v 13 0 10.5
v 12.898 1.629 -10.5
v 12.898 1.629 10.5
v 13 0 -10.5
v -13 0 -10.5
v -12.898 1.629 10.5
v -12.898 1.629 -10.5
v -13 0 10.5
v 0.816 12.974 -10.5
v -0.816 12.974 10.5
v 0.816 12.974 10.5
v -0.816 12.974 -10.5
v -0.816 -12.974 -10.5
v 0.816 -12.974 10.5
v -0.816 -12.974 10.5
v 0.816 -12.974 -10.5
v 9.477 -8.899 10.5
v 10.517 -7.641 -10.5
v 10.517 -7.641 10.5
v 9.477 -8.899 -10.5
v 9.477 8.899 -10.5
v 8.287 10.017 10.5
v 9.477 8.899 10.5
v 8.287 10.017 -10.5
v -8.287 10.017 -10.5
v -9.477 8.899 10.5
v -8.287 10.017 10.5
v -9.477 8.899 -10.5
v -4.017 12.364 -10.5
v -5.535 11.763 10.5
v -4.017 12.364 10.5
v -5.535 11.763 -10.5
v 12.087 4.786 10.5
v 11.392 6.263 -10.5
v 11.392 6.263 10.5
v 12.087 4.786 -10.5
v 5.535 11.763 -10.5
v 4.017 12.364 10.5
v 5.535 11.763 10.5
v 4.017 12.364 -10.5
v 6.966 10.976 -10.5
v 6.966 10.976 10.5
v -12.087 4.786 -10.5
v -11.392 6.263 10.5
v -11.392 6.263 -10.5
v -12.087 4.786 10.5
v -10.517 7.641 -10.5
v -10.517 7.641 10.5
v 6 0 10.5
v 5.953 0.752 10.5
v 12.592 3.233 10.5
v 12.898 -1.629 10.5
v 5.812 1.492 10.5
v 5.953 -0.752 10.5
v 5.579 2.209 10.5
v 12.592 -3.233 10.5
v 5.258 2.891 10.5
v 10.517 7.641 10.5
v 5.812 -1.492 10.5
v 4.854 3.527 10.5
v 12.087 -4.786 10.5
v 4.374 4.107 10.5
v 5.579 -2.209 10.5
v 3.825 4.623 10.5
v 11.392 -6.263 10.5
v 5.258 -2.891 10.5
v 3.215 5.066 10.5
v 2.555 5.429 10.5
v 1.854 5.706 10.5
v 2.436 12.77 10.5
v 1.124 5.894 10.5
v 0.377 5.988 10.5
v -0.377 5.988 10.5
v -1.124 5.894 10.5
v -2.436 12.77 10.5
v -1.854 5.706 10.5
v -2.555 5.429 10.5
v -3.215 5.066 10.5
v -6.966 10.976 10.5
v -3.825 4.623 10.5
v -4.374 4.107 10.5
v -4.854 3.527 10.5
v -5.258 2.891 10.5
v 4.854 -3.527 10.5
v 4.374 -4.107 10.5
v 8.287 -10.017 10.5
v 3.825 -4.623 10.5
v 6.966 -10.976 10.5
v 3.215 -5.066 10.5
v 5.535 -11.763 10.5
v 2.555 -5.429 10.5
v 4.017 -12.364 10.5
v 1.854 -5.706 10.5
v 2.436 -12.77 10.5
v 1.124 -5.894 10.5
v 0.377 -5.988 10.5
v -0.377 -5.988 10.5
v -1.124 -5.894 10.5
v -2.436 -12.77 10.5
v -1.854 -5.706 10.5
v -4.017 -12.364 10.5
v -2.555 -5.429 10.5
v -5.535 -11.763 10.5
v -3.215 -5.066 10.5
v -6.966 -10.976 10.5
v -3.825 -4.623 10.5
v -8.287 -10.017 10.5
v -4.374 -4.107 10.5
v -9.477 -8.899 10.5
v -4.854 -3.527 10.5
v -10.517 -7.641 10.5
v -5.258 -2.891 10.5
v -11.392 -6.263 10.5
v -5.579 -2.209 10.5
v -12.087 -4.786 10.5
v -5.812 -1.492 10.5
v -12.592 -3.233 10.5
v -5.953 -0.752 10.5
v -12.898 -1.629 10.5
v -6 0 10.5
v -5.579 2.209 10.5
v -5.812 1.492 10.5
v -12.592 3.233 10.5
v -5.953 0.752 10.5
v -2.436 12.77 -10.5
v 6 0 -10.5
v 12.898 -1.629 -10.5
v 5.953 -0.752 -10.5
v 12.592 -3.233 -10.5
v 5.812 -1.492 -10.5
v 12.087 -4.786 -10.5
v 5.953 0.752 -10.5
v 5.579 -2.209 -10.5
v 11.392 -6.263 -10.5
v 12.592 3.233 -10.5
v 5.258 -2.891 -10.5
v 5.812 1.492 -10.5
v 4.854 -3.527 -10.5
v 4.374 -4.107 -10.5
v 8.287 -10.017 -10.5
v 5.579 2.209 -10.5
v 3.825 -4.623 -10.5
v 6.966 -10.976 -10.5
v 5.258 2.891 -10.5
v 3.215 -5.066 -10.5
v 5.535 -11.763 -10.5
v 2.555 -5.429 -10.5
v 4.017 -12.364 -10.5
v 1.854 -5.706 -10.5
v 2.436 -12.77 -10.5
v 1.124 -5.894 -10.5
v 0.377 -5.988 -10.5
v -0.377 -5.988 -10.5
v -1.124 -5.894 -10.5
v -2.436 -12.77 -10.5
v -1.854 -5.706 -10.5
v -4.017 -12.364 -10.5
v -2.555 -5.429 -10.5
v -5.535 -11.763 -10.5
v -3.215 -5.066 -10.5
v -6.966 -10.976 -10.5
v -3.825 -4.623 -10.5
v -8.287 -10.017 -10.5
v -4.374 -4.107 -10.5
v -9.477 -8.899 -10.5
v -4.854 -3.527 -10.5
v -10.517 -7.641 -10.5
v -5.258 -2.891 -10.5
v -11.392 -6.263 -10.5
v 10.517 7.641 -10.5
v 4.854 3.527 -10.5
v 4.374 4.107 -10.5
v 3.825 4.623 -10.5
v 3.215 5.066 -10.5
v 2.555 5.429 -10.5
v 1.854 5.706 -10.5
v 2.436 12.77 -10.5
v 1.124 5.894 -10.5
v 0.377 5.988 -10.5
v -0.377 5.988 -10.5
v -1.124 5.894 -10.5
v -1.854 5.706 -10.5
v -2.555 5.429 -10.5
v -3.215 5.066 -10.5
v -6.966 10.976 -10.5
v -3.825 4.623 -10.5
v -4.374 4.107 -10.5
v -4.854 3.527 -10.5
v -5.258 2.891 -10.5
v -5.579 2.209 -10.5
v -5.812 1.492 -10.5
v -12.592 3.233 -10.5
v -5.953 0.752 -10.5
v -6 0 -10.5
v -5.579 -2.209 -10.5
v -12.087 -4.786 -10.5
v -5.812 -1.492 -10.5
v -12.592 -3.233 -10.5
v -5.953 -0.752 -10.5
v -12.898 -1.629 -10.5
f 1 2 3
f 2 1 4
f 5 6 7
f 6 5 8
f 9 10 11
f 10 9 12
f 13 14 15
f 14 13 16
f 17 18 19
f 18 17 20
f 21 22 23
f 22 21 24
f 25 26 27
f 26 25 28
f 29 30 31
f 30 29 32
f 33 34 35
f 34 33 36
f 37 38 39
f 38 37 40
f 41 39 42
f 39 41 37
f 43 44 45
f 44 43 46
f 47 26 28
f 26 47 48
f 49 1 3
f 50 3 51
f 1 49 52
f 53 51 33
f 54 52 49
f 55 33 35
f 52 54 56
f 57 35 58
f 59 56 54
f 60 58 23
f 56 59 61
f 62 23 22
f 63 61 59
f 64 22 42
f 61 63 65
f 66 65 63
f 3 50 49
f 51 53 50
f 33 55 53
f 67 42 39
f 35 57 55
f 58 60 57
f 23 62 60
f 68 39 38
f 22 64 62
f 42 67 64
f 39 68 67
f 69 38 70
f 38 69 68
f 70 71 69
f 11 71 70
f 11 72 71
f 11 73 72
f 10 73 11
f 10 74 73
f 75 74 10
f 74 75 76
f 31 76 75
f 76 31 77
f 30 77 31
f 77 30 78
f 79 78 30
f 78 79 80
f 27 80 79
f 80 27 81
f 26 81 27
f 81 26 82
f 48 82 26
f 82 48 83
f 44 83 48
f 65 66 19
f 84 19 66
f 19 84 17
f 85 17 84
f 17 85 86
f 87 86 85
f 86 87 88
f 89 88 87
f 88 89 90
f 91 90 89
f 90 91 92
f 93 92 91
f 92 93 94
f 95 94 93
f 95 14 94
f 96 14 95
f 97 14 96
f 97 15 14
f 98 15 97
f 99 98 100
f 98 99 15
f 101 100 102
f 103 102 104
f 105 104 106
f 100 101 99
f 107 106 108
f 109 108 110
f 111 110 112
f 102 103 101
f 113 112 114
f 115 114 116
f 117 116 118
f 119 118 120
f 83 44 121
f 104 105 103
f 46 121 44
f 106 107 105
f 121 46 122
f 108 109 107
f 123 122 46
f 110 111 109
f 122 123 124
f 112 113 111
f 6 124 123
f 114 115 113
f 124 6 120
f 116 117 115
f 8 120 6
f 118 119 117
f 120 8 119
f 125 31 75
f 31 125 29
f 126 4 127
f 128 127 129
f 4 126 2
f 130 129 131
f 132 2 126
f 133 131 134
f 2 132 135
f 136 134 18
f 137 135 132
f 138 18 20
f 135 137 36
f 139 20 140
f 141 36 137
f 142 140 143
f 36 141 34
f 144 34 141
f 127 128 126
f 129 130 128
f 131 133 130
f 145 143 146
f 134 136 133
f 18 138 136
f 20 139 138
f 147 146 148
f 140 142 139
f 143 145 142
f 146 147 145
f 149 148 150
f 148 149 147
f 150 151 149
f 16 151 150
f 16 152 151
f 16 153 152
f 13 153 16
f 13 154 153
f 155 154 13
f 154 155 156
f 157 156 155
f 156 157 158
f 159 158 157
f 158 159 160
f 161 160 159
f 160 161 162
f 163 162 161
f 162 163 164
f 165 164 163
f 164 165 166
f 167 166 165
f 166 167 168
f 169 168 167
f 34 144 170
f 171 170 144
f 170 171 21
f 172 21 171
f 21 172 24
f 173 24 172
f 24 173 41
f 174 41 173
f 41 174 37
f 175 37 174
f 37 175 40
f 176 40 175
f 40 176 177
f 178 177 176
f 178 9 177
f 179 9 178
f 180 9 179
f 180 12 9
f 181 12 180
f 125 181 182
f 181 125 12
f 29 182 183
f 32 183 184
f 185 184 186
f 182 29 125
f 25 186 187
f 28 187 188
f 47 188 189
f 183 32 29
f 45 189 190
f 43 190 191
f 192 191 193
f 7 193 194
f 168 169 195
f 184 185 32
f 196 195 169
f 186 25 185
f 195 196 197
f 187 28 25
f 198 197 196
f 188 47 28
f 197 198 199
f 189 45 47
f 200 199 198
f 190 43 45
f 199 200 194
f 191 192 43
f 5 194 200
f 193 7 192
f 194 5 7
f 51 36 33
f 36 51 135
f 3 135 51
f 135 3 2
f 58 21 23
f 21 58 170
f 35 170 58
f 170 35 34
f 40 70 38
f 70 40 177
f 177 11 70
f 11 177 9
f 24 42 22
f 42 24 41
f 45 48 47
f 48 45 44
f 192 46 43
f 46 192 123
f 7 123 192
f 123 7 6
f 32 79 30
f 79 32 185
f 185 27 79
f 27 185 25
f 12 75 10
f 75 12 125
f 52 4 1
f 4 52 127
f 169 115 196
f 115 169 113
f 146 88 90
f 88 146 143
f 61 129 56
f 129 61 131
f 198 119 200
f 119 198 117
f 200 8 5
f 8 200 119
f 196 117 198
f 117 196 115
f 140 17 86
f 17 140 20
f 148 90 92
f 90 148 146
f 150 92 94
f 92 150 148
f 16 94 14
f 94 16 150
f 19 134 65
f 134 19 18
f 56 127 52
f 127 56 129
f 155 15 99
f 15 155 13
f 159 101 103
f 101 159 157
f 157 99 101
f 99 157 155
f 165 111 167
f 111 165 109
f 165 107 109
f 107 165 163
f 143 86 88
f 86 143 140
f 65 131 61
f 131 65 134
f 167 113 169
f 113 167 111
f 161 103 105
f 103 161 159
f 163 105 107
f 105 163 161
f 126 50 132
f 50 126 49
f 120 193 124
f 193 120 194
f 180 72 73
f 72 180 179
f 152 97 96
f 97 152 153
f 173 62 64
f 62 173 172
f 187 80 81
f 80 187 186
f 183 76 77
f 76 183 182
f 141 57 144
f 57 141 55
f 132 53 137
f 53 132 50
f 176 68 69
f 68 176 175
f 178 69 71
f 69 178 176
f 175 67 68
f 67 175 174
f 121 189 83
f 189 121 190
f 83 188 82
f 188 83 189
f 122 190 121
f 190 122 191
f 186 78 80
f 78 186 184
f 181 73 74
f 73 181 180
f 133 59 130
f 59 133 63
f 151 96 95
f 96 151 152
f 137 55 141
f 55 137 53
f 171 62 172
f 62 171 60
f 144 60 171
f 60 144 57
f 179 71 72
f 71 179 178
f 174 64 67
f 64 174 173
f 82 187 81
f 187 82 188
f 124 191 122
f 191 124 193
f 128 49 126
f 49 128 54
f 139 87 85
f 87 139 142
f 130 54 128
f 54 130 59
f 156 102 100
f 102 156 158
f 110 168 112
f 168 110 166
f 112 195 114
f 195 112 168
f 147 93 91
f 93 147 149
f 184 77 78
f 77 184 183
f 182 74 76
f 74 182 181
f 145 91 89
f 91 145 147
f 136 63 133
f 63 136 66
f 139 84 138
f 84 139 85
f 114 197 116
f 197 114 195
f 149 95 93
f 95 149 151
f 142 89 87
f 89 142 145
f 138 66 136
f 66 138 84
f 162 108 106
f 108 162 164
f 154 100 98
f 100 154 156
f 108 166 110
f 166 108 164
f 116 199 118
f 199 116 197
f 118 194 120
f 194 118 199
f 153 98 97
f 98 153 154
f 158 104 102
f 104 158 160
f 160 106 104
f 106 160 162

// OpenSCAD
$fn = 50;


difference() {
	union() {
		translate(v = [0, 0, -10.5000000000]) {
			cylinder(h = 21, r = 13.0000000000);
		}
	}
	union() {
		translate(v = [0, 0, -100.0000000000]) {
			cylinder(h = 200, r = 6);
		}
	}
}
